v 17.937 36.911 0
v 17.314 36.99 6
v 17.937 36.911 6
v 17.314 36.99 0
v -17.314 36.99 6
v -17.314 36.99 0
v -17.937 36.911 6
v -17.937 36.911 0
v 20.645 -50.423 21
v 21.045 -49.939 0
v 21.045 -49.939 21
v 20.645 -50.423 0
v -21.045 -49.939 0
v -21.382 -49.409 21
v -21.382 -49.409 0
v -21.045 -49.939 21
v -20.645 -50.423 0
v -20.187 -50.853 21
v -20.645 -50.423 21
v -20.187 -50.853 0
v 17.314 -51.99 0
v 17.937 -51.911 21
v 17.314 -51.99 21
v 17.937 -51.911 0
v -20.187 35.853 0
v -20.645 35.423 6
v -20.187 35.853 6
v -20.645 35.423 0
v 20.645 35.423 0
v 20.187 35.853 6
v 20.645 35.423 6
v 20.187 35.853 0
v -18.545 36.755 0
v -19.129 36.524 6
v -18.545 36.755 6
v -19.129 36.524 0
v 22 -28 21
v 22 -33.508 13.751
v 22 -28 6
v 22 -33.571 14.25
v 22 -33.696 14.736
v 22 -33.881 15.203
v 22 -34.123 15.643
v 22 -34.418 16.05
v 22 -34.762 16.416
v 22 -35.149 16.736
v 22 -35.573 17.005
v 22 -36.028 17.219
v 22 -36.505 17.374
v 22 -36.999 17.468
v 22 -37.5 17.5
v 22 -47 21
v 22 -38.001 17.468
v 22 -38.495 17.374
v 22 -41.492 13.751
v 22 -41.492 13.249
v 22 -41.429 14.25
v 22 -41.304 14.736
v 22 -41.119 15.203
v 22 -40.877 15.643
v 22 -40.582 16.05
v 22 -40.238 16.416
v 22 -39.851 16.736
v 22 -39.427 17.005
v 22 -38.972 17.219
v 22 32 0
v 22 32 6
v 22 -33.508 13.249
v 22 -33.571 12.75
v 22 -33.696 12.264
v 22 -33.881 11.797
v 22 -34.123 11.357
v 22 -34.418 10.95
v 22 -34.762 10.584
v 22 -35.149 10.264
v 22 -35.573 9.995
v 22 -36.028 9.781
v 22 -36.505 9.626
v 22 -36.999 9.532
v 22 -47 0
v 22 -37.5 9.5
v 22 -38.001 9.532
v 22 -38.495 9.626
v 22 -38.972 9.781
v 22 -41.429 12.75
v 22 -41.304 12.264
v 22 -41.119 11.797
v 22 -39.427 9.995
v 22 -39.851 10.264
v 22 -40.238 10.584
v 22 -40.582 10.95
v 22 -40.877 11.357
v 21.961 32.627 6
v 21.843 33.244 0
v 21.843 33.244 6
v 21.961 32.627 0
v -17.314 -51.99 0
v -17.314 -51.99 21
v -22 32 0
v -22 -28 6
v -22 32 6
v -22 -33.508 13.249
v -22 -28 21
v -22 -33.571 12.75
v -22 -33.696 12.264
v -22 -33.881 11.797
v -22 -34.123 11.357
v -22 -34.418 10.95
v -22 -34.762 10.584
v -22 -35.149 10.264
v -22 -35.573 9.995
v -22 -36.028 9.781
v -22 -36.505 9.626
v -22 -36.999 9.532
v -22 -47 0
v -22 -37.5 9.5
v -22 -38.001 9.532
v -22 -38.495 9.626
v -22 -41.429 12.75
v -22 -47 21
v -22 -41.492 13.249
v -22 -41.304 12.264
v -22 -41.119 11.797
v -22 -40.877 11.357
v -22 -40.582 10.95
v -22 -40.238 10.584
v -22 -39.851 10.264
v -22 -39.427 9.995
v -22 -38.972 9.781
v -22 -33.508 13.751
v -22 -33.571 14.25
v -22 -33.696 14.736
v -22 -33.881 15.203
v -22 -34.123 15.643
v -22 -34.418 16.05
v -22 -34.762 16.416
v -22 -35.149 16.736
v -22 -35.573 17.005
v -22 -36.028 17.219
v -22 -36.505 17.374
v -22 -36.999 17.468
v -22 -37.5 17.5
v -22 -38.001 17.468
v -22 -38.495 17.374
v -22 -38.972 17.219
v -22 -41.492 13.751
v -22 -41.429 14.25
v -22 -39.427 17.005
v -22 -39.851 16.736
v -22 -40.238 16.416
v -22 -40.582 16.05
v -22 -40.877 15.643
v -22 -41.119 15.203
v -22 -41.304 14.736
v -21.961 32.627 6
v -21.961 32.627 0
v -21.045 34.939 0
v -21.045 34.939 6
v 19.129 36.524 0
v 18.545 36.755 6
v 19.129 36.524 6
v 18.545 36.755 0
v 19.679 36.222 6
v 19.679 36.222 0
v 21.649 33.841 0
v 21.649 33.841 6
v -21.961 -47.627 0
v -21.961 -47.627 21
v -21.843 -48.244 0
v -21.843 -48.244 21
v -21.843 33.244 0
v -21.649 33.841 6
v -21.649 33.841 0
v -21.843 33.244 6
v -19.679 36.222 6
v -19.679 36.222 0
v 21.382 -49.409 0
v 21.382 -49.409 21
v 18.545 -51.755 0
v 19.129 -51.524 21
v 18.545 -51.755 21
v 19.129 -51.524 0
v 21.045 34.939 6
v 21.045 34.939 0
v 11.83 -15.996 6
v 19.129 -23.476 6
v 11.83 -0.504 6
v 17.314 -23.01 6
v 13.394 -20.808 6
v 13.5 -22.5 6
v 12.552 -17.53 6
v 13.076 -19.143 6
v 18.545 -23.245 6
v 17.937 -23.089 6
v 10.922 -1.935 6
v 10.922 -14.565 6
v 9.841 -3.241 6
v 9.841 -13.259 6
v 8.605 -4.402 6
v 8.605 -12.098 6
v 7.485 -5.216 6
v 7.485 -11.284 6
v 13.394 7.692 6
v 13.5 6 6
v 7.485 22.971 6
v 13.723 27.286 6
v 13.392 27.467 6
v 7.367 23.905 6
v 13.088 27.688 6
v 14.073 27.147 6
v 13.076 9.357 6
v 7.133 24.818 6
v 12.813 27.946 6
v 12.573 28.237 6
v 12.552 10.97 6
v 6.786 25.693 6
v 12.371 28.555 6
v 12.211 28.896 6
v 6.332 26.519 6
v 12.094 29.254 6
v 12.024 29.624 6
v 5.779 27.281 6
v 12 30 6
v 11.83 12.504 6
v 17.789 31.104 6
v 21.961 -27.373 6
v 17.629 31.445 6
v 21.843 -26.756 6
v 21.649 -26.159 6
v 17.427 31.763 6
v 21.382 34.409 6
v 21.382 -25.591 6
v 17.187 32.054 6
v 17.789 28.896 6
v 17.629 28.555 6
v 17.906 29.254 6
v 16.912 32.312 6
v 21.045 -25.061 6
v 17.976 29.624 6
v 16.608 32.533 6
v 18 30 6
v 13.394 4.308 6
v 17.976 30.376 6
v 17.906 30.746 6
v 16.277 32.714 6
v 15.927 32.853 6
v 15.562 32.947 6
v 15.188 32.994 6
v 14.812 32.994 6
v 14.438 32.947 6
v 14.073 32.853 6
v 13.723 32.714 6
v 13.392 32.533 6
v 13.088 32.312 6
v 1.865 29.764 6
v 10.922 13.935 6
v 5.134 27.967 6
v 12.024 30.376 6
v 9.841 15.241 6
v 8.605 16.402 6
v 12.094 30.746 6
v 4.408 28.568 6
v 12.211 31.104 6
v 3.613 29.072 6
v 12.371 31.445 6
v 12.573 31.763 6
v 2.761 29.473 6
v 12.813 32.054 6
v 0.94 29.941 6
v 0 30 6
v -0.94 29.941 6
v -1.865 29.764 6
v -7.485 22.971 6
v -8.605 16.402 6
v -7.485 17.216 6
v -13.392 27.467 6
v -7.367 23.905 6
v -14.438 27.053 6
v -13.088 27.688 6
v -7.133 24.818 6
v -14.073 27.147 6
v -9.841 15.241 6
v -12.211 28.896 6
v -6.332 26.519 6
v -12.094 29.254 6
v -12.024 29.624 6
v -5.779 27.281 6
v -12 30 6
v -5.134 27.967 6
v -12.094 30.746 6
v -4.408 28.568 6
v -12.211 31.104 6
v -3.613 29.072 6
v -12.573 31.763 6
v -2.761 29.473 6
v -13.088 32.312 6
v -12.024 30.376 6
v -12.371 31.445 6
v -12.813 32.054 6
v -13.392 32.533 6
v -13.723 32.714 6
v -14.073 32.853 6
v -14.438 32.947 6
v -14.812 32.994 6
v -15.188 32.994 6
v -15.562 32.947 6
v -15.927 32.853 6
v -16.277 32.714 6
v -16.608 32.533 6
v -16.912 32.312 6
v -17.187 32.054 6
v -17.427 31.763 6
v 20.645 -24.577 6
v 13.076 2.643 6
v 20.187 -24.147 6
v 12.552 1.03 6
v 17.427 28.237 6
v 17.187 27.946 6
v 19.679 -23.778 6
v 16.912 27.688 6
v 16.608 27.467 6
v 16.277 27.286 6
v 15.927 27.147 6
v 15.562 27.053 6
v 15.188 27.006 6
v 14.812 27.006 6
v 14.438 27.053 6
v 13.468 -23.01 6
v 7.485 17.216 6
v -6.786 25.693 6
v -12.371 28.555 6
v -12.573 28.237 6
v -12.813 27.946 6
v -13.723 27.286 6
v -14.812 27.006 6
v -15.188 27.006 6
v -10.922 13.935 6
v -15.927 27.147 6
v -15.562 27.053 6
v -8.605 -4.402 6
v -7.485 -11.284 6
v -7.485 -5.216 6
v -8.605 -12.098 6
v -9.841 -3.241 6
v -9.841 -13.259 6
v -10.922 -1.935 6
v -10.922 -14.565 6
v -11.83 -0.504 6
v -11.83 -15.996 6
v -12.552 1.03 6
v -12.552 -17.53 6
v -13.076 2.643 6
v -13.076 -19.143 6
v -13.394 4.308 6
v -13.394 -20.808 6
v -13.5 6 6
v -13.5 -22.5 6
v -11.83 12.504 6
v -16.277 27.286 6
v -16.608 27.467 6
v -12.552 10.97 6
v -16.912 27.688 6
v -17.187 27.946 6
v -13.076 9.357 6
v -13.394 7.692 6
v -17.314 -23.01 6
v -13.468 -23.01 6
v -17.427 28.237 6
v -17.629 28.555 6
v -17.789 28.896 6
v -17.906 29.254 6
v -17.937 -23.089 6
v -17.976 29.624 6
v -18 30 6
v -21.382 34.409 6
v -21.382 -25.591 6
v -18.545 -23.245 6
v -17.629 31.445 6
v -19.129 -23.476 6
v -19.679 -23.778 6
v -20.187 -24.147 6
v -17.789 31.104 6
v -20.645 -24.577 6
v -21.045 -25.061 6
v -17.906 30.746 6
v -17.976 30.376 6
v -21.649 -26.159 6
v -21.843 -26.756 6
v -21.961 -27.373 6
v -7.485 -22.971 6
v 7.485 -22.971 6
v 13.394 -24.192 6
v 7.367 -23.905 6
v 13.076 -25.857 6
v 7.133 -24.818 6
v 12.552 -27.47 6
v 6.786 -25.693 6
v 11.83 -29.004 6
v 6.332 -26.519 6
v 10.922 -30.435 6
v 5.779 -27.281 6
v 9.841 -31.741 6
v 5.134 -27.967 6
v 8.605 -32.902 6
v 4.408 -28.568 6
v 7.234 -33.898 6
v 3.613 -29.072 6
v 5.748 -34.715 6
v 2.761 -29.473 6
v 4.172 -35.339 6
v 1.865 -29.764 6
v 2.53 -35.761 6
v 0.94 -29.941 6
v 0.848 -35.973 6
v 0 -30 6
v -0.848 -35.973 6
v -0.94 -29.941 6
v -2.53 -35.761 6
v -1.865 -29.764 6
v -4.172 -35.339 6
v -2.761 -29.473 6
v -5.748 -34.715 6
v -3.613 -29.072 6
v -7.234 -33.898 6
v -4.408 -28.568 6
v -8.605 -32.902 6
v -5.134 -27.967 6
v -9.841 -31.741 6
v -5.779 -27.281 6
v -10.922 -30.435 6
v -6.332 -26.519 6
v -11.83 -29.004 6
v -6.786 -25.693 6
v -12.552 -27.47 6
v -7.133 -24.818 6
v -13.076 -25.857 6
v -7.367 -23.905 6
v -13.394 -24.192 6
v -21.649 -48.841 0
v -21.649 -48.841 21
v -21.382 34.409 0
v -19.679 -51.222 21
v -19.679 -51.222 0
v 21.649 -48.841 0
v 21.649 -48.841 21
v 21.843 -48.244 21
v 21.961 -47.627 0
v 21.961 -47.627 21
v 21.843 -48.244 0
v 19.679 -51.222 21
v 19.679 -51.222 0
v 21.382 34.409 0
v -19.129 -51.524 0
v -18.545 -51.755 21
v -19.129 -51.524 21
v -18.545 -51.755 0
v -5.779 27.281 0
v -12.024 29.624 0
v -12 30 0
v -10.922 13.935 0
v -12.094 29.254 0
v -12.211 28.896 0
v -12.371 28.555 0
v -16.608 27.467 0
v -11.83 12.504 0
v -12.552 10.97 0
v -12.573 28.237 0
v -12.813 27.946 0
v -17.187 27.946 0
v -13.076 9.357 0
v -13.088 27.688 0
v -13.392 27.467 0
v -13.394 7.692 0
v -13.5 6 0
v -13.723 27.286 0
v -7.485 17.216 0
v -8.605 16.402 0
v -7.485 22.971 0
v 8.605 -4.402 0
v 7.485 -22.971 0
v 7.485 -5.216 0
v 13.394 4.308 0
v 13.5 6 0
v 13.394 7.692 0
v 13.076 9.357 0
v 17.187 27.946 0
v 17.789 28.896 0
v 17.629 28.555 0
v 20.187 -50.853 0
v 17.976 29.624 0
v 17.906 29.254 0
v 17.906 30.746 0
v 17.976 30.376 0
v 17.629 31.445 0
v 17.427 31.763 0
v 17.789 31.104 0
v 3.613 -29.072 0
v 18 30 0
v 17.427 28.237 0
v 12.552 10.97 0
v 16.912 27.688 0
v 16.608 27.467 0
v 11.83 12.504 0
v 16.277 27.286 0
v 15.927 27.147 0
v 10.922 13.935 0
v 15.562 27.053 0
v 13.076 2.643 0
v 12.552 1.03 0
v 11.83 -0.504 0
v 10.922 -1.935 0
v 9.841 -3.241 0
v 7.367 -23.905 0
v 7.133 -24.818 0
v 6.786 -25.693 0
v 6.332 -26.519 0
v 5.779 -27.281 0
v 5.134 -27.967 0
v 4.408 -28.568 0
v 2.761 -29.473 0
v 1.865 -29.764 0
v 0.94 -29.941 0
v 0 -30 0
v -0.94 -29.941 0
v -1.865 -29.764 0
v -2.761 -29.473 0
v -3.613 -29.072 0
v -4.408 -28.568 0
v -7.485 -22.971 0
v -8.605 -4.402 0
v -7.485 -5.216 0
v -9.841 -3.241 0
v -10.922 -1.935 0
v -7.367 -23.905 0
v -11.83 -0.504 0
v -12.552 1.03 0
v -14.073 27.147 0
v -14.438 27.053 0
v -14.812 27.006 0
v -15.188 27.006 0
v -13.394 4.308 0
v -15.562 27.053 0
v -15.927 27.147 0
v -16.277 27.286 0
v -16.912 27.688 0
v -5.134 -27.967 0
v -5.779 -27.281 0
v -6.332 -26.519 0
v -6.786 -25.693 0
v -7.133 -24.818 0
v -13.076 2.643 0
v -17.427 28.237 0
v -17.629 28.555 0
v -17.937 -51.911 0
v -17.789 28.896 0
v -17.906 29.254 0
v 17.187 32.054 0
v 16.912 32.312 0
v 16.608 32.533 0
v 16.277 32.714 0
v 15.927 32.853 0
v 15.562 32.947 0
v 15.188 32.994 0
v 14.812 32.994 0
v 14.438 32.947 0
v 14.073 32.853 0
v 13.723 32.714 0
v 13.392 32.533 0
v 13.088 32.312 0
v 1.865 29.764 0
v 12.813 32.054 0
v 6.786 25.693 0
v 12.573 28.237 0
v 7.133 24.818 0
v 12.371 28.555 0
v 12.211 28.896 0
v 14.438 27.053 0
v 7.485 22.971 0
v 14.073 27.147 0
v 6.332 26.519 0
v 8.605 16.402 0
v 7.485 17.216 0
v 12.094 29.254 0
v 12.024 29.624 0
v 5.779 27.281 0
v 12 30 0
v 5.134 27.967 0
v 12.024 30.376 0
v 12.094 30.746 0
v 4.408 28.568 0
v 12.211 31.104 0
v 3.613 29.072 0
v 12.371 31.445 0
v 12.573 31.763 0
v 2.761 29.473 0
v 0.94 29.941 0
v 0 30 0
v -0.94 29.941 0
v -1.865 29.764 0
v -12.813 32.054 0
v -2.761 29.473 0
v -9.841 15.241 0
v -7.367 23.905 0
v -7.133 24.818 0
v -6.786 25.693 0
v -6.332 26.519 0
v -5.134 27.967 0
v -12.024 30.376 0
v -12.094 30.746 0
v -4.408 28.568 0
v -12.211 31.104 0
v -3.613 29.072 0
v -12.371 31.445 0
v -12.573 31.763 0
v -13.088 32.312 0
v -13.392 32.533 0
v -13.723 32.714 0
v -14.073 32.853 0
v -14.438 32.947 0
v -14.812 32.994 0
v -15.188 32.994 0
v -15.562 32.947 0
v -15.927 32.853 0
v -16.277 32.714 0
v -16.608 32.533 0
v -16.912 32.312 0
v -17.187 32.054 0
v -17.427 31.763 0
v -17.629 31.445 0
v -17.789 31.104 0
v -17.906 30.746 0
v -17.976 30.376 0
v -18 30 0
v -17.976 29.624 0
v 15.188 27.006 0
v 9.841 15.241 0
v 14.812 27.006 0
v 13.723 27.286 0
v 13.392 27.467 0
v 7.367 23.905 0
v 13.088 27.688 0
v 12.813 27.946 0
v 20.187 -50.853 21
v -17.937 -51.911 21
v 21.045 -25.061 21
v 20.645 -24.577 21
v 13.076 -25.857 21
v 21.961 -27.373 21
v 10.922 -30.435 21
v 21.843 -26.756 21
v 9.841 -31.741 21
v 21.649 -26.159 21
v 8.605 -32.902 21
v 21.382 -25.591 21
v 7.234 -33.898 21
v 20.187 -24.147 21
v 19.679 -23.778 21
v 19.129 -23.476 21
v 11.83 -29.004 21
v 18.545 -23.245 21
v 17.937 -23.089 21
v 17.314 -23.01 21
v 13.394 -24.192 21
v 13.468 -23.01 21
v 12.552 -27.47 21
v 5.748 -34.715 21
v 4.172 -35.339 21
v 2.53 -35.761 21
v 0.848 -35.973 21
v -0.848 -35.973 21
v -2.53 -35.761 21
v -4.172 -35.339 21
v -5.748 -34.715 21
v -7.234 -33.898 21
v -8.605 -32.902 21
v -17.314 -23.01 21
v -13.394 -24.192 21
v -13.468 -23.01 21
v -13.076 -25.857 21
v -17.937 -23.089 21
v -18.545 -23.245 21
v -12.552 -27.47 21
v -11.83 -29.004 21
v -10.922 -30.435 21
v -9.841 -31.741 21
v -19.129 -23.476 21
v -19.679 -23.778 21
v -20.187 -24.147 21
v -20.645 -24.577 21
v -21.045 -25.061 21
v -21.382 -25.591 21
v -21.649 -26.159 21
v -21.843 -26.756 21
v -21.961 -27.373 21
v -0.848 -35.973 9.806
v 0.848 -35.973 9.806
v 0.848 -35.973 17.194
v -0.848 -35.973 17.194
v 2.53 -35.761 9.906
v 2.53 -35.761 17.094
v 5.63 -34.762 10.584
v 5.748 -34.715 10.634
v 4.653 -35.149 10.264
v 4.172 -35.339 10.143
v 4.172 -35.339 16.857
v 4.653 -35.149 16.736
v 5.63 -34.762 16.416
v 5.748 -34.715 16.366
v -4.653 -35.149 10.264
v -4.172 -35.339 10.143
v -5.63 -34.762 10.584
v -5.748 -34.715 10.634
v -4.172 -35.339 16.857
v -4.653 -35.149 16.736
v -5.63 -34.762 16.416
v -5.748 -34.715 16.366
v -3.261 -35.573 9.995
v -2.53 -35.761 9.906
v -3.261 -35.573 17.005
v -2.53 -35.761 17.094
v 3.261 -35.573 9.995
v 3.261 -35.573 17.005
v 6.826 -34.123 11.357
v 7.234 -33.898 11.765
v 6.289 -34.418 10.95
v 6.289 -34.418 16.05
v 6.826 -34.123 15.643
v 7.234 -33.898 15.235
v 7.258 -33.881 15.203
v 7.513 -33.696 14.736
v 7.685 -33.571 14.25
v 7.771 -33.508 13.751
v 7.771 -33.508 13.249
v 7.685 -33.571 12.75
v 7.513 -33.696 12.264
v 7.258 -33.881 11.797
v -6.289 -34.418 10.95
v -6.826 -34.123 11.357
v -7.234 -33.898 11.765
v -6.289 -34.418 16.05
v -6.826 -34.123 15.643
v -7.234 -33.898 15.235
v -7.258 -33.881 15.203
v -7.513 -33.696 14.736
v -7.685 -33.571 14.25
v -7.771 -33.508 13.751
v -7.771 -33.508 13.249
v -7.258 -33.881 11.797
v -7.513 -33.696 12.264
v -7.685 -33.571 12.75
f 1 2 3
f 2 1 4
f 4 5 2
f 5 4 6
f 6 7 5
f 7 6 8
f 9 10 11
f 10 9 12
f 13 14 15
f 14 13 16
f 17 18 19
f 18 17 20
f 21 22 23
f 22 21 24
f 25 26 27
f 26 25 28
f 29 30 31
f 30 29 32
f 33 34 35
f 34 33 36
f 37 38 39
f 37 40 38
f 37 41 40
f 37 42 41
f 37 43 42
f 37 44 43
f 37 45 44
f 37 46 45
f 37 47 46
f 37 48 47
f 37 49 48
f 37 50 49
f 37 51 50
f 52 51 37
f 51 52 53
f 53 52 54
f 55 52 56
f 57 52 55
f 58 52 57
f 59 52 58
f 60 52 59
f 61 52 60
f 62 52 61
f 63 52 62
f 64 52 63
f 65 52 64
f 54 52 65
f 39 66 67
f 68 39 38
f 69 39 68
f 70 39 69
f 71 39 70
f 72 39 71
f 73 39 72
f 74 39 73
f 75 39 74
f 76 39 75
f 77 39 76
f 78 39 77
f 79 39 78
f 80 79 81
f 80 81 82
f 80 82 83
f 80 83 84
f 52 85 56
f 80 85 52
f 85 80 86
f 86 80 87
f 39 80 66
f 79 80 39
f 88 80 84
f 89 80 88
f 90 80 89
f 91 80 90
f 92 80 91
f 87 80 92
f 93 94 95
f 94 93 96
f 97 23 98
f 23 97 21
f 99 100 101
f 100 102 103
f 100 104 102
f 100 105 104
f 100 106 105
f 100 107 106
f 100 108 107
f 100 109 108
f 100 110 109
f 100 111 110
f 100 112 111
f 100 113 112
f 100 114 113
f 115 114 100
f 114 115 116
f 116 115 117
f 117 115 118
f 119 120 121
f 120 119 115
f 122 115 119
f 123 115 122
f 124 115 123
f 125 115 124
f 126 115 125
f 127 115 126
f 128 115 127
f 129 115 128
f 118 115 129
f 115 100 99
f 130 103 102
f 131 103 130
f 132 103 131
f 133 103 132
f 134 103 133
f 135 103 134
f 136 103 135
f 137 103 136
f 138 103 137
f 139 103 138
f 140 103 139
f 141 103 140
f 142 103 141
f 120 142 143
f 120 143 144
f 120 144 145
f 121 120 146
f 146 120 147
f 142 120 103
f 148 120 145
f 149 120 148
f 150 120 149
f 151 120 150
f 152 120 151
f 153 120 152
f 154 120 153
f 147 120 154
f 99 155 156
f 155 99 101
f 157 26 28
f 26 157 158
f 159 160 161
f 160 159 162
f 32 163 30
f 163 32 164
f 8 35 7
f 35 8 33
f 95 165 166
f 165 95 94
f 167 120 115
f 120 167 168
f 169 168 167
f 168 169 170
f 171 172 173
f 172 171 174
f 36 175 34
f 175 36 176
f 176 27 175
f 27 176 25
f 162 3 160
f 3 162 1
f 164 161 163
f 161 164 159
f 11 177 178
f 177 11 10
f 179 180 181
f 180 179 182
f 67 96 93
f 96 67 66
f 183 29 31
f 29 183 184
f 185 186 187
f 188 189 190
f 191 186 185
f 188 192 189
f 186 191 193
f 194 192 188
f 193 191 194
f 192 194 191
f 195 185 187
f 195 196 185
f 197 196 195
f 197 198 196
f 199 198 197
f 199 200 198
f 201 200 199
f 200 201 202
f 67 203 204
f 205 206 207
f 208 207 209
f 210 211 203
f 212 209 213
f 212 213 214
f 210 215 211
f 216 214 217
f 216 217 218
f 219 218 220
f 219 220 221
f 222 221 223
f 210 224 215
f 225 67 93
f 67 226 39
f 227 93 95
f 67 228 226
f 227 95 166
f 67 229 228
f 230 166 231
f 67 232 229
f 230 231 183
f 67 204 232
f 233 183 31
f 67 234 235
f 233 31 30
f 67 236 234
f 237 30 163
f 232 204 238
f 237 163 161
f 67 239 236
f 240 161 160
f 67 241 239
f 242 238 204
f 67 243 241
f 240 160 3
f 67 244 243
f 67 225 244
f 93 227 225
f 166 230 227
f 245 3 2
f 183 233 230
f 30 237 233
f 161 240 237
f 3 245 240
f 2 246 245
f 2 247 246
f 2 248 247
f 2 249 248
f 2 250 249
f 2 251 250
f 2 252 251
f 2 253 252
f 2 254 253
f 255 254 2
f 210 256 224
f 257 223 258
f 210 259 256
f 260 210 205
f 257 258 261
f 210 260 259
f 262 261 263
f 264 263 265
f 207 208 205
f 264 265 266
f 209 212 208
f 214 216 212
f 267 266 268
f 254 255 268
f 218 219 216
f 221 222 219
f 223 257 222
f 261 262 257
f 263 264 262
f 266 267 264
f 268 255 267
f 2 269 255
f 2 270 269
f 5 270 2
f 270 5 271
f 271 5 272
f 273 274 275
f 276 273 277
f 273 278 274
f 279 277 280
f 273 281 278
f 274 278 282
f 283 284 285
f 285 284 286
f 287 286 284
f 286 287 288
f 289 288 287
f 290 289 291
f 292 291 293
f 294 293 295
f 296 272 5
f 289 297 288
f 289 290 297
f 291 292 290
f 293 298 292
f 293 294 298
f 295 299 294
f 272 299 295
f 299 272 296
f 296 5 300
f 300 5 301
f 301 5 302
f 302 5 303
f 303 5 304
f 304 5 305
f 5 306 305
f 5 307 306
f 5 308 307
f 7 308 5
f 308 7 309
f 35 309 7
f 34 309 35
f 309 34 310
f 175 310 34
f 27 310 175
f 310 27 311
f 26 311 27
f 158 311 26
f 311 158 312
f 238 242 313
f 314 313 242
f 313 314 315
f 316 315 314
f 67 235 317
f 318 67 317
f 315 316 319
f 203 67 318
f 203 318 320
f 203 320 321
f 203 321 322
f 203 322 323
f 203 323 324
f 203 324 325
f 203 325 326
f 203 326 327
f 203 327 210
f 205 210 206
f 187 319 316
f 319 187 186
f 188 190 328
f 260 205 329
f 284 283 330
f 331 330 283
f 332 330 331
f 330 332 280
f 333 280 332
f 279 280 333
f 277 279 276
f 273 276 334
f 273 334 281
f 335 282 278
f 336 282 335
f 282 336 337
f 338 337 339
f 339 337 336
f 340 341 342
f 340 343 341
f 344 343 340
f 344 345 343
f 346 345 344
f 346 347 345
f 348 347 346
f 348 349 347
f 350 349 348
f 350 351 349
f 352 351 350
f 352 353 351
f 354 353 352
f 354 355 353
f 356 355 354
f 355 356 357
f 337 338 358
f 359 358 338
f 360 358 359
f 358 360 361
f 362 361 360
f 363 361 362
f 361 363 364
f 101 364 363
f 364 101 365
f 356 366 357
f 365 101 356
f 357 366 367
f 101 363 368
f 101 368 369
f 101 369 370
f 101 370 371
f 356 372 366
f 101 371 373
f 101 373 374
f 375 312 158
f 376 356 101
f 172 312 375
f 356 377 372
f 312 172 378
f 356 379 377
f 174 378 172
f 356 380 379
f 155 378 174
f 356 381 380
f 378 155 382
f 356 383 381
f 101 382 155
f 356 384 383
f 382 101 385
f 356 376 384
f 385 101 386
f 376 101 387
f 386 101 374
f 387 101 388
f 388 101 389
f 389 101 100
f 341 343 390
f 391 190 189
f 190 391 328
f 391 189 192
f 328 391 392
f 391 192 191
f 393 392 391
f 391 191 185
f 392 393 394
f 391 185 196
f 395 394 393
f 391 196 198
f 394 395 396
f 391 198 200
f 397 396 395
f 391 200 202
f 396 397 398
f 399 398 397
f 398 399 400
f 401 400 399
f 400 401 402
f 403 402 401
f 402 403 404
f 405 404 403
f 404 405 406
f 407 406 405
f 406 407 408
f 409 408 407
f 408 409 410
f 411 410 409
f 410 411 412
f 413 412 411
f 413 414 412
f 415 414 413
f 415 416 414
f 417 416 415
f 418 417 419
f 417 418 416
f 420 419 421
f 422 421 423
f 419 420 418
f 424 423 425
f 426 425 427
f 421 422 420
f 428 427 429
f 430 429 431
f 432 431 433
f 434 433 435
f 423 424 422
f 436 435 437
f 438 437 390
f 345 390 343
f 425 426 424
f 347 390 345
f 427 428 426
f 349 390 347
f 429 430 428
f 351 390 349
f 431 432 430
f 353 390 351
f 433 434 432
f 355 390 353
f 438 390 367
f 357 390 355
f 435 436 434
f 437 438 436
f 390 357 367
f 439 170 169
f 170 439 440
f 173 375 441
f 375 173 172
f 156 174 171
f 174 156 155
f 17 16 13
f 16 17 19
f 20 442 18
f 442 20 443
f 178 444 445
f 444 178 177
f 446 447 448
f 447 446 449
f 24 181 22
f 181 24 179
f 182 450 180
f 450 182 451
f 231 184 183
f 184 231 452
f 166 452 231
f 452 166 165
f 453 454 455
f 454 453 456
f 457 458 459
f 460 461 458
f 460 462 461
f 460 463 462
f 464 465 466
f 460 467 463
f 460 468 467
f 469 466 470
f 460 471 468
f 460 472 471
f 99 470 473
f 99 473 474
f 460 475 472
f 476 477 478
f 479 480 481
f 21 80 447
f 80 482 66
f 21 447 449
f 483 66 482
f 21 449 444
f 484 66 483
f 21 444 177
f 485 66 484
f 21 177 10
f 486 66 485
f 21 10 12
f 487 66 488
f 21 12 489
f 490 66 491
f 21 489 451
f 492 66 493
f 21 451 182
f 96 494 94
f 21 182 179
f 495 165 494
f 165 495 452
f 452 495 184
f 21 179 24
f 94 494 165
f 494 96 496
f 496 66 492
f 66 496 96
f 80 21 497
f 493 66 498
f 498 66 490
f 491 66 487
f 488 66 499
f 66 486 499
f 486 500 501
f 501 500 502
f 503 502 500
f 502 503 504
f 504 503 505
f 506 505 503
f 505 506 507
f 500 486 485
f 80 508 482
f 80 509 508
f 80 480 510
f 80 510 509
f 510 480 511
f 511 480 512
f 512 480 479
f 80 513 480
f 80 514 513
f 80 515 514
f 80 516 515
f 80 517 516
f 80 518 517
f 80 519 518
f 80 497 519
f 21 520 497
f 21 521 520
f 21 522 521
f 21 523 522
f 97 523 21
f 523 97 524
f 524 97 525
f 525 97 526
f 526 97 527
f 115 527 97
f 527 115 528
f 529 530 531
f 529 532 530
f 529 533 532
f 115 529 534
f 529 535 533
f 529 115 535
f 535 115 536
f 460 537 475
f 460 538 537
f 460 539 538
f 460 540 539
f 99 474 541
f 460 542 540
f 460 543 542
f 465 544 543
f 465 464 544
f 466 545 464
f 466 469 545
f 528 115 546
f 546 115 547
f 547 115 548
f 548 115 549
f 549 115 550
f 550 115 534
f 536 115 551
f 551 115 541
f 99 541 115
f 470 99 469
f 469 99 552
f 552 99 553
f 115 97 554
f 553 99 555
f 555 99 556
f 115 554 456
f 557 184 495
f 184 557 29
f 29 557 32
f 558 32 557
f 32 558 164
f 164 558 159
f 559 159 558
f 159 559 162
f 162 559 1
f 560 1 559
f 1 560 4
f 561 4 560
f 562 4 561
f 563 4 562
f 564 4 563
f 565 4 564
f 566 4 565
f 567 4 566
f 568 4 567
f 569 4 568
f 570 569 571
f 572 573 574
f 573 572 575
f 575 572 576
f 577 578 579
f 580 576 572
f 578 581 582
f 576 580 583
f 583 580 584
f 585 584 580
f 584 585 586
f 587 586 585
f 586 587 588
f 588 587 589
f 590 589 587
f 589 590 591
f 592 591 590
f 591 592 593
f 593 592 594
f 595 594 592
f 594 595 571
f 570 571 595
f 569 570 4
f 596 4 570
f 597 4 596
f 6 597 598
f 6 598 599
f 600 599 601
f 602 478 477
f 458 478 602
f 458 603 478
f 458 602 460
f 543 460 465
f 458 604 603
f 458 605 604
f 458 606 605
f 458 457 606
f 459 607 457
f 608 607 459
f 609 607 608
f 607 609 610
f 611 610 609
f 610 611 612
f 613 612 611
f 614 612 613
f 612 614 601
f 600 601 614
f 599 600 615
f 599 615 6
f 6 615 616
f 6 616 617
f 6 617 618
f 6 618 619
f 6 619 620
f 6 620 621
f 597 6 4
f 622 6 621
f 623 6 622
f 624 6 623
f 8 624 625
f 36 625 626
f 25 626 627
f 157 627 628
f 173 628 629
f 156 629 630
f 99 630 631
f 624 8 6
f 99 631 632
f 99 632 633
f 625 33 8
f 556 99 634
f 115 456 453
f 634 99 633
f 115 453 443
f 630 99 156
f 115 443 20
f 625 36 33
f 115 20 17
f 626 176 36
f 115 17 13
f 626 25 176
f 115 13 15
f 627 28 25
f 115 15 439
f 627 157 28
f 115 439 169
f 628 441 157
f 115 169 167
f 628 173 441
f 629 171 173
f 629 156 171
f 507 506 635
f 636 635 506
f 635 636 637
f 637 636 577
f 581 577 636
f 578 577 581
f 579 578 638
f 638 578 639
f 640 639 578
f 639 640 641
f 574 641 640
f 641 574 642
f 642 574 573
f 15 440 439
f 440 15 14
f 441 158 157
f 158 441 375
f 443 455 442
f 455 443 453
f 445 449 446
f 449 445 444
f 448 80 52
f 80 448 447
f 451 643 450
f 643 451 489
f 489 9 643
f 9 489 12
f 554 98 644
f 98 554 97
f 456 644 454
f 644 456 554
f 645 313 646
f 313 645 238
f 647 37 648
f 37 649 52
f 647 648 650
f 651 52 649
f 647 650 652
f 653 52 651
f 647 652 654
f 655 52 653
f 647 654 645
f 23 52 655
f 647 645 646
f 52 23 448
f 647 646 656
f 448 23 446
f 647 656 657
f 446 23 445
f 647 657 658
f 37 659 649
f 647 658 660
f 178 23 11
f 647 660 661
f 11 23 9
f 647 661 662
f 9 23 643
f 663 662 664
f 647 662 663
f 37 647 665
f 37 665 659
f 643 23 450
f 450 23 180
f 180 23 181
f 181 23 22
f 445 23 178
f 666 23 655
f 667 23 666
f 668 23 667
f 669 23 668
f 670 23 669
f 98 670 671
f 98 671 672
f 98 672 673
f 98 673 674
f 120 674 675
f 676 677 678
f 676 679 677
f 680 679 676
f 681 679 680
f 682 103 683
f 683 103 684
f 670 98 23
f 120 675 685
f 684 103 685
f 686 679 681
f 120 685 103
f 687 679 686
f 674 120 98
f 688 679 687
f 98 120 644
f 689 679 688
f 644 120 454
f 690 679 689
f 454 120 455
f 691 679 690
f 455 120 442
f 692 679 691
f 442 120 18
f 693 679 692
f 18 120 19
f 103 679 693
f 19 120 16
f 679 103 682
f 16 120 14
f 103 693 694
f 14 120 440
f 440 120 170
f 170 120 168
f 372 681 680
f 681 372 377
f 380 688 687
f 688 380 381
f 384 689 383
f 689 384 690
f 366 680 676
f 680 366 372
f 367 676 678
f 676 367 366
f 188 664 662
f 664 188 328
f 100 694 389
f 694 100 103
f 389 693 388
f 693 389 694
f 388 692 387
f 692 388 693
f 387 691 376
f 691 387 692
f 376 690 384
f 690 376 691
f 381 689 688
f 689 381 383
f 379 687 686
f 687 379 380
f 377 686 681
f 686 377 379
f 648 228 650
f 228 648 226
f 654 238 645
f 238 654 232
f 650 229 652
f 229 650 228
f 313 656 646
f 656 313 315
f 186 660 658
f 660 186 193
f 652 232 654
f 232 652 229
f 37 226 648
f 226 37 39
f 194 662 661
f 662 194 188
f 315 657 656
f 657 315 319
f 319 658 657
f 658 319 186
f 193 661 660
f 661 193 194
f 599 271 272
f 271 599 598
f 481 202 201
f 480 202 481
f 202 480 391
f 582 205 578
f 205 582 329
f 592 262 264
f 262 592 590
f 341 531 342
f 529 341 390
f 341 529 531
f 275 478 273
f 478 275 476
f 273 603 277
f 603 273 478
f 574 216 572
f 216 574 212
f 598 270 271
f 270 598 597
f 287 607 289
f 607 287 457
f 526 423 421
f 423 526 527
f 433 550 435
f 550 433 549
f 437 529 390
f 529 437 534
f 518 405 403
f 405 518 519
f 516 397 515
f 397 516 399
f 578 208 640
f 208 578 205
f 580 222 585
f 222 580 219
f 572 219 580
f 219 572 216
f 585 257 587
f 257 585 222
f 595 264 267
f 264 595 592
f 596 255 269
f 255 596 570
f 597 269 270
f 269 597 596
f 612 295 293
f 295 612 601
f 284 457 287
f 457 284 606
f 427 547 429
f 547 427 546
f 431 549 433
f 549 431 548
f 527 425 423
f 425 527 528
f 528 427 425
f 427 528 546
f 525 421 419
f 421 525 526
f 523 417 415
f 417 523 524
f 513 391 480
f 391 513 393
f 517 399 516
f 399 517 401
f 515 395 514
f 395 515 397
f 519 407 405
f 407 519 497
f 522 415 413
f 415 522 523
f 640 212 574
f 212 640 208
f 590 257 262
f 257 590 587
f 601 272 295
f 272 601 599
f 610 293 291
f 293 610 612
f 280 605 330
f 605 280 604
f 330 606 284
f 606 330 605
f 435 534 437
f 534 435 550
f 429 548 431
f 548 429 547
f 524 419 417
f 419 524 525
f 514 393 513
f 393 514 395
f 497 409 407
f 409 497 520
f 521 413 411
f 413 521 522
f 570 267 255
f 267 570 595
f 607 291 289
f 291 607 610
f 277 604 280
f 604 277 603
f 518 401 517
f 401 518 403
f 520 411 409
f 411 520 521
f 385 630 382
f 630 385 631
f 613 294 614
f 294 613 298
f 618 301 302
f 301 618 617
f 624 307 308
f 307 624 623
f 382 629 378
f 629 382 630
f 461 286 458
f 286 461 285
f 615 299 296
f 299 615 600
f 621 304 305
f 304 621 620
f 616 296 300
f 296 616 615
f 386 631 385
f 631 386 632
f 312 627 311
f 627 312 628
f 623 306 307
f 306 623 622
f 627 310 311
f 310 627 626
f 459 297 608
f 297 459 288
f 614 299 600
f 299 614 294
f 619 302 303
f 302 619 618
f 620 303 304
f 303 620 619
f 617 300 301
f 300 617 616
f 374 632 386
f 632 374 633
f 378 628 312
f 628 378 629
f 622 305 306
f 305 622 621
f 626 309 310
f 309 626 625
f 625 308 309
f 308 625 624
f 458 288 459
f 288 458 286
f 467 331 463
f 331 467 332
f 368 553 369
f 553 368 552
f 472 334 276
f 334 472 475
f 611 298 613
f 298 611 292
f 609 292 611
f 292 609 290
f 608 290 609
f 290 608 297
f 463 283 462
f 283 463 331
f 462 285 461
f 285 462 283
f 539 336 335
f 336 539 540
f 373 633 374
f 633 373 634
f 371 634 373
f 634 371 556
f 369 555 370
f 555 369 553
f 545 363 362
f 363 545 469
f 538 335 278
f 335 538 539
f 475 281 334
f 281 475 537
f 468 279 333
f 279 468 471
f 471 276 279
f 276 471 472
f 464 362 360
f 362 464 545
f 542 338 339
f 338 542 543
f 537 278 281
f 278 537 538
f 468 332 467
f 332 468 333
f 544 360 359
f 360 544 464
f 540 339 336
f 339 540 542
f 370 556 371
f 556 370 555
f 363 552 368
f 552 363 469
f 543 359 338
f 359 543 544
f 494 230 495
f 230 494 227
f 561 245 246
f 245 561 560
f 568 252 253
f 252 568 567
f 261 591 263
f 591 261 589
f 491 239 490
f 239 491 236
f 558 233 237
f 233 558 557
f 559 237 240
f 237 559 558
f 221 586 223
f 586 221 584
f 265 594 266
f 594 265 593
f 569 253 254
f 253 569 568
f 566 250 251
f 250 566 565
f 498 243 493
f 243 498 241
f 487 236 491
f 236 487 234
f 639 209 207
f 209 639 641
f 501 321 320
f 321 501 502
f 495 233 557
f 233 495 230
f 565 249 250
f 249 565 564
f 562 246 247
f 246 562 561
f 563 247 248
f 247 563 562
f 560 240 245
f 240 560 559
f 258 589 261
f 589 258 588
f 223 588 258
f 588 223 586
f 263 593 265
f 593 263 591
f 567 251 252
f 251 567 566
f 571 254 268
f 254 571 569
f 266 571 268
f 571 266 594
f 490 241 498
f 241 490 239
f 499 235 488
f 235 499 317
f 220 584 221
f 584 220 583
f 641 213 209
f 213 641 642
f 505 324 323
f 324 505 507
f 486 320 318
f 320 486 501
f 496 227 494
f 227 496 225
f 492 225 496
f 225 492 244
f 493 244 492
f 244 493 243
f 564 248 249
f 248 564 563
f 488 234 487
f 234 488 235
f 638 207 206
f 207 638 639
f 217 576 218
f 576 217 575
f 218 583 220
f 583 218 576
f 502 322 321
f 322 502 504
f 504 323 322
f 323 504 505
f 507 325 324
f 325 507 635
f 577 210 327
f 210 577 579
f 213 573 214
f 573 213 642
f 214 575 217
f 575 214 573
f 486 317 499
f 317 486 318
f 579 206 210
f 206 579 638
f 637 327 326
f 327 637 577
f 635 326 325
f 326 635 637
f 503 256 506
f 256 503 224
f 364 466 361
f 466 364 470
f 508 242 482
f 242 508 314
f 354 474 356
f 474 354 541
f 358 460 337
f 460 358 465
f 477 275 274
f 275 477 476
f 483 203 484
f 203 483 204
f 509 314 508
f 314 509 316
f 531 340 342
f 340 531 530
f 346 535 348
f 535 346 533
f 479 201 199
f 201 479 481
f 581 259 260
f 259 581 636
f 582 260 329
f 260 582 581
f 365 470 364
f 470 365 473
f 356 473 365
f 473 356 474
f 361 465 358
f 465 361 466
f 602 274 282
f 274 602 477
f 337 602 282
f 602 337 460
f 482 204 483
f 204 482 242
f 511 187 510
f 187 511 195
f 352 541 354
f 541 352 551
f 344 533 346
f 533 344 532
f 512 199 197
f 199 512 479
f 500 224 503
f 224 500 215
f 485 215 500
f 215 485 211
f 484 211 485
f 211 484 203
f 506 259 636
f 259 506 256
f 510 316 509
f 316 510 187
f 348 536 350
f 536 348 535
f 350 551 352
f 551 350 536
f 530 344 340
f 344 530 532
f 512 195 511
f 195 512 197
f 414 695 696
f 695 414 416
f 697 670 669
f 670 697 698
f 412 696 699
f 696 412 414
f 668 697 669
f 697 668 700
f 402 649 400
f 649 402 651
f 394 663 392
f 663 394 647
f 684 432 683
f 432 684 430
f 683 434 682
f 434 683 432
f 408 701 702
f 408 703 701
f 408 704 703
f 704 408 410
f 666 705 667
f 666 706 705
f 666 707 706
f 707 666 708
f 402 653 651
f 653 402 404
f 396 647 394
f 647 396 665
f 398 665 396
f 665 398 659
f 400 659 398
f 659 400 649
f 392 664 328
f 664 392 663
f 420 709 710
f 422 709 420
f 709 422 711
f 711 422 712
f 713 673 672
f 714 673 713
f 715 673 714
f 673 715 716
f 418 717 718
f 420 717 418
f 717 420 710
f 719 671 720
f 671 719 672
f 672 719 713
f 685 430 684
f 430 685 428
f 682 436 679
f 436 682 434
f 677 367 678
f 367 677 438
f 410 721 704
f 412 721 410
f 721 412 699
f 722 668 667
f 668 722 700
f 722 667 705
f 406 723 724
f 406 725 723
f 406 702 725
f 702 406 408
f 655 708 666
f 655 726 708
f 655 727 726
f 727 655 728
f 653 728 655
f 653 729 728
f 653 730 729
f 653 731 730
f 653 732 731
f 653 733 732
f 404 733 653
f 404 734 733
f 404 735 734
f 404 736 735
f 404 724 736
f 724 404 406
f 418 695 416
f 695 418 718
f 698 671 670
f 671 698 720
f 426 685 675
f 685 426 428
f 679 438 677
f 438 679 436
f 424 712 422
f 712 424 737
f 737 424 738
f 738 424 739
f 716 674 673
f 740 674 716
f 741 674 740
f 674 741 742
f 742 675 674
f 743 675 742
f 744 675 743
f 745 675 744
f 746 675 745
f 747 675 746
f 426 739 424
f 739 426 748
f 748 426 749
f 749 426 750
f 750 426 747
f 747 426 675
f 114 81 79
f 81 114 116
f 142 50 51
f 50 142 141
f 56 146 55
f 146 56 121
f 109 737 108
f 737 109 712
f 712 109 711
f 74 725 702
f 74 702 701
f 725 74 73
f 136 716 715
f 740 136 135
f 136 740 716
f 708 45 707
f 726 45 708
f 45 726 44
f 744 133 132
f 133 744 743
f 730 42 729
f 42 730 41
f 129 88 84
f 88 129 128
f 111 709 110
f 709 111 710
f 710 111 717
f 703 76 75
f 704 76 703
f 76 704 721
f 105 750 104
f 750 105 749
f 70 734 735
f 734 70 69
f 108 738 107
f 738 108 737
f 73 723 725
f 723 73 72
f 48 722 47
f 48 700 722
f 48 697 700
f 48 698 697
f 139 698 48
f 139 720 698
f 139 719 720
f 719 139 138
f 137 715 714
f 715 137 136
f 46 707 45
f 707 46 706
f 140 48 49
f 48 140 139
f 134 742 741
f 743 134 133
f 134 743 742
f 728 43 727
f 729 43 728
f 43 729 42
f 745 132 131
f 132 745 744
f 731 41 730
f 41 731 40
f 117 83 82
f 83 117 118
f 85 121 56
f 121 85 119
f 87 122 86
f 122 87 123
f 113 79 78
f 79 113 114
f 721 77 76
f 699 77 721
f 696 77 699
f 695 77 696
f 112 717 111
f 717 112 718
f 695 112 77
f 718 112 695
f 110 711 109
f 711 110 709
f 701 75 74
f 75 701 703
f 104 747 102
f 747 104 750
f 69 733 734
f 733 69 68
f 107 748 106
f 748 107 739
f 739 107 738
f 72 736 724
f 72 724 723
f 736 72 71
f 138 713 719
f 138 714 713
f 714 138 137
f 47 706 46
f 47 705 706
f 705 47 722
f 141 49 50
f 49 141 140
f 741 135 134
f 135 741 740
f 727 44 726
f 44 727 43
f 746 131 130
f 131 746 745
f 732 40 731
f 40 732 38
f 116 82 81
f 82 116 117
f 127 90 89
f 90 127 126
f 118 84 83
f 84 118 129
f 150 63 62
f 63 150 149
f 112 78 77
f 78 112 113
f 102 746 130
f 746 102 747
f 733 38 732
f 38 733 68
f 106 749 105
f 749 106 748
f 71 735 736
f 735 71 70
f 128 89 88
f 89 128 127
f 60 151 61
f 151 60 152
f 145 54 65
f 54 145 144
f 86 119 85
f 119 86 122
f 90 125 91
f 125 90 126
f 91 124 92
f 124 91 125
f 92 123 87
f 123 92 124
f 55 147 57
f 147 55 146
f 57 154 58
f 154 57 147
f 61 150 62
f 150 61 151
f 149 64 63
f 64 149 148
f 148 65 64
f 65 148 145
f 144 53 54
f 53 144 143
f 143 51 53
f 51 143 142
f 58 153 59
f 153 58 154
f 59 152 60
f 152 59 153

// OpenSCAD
$fn = 50;


difference() {
	union() {
		translate(v = [0, -7.5000000000, 0]) {
			hull() {
				translate(v = [-17.0000000000, 39.5000000000, 0]) {
					cylinder(h = 6, r = 5);
				}
				translate(v = [17.0000000000, 39.5000000000, 0]) {
					cylinder(h = 6, r = 5);
				}
				translate(v = [-17.0000000000, -39.5000000000, 0]) {
					cylinder(h = 6, r = 5);
				}
				translate(v = [17.0000000000, -39.5000000000, 0]) {
					cylinder(h = 6, r = 5);
				}
			}
		}
		translate(v = [0, -37.5000000000, 0]) {
			hull() {
				translate(v = [-17.0000000000, 9.5000000000, 0]) {
					cylinder(h = 21, r = 5);
				}
				translate(v = [17.0000000000, 9.5000000000, 0]) {
					cylinder(h = 21, r = 5);
				}
				translate(v = [-17.0000000000, -9.5000000000, 0]) {
					cylinder(h = 21, r = 5);
				}
				translate(v = [17.0000000000, -9.5000000000, 0]) {
					cylinder(h = 21, r = 5);
				}
			}
		}
	}
	union() {
		translate(v = [0, 0, 0]) {
			rotate(a = [0, 0, 90]) {
				difference() {
					union() {
						hull() {
							translate(v = [22.5000000000, 0, 0]) {
								cylinder(h = 6, r = 7.5000000000, r1 = 7.5000000000, r2 = 7.5000000000);
							}
							translate(v = [-22.5000000000, 0, 0]) {
								cylinder(h = 6, r = 7.5000000000, r1 = 7.5000000000, r2 = 7.5000000000);
							}
						}
					}
					union();
				}
			}
		}
		translate(v = [-15.0000000000, 30.0000000000, 0]) {
			cylinder(h = 6, r = 3.0000000000);
		}
		translate(v = [15.0000000000, 30.0000000000, 0]) {
			cylinder(h = 6, r = 3.0000000000);
		}
		translate(v = [0, 6, 0]) {
			cylinder(h = 20, r = 13.5000000000);
		}
		translate(v = [0, -22.5000000000, 6]) {
			cylinder(h = 20, r = 13.5000000000);
		}
		translate(v = [-22.0000000000, -37.5000000000, 13.5000000000]) {
			rotate(a = [0, 90, 0]) {
				cylinder(h = 44, r = 4.0000000000);
			}
		}
	}
}
